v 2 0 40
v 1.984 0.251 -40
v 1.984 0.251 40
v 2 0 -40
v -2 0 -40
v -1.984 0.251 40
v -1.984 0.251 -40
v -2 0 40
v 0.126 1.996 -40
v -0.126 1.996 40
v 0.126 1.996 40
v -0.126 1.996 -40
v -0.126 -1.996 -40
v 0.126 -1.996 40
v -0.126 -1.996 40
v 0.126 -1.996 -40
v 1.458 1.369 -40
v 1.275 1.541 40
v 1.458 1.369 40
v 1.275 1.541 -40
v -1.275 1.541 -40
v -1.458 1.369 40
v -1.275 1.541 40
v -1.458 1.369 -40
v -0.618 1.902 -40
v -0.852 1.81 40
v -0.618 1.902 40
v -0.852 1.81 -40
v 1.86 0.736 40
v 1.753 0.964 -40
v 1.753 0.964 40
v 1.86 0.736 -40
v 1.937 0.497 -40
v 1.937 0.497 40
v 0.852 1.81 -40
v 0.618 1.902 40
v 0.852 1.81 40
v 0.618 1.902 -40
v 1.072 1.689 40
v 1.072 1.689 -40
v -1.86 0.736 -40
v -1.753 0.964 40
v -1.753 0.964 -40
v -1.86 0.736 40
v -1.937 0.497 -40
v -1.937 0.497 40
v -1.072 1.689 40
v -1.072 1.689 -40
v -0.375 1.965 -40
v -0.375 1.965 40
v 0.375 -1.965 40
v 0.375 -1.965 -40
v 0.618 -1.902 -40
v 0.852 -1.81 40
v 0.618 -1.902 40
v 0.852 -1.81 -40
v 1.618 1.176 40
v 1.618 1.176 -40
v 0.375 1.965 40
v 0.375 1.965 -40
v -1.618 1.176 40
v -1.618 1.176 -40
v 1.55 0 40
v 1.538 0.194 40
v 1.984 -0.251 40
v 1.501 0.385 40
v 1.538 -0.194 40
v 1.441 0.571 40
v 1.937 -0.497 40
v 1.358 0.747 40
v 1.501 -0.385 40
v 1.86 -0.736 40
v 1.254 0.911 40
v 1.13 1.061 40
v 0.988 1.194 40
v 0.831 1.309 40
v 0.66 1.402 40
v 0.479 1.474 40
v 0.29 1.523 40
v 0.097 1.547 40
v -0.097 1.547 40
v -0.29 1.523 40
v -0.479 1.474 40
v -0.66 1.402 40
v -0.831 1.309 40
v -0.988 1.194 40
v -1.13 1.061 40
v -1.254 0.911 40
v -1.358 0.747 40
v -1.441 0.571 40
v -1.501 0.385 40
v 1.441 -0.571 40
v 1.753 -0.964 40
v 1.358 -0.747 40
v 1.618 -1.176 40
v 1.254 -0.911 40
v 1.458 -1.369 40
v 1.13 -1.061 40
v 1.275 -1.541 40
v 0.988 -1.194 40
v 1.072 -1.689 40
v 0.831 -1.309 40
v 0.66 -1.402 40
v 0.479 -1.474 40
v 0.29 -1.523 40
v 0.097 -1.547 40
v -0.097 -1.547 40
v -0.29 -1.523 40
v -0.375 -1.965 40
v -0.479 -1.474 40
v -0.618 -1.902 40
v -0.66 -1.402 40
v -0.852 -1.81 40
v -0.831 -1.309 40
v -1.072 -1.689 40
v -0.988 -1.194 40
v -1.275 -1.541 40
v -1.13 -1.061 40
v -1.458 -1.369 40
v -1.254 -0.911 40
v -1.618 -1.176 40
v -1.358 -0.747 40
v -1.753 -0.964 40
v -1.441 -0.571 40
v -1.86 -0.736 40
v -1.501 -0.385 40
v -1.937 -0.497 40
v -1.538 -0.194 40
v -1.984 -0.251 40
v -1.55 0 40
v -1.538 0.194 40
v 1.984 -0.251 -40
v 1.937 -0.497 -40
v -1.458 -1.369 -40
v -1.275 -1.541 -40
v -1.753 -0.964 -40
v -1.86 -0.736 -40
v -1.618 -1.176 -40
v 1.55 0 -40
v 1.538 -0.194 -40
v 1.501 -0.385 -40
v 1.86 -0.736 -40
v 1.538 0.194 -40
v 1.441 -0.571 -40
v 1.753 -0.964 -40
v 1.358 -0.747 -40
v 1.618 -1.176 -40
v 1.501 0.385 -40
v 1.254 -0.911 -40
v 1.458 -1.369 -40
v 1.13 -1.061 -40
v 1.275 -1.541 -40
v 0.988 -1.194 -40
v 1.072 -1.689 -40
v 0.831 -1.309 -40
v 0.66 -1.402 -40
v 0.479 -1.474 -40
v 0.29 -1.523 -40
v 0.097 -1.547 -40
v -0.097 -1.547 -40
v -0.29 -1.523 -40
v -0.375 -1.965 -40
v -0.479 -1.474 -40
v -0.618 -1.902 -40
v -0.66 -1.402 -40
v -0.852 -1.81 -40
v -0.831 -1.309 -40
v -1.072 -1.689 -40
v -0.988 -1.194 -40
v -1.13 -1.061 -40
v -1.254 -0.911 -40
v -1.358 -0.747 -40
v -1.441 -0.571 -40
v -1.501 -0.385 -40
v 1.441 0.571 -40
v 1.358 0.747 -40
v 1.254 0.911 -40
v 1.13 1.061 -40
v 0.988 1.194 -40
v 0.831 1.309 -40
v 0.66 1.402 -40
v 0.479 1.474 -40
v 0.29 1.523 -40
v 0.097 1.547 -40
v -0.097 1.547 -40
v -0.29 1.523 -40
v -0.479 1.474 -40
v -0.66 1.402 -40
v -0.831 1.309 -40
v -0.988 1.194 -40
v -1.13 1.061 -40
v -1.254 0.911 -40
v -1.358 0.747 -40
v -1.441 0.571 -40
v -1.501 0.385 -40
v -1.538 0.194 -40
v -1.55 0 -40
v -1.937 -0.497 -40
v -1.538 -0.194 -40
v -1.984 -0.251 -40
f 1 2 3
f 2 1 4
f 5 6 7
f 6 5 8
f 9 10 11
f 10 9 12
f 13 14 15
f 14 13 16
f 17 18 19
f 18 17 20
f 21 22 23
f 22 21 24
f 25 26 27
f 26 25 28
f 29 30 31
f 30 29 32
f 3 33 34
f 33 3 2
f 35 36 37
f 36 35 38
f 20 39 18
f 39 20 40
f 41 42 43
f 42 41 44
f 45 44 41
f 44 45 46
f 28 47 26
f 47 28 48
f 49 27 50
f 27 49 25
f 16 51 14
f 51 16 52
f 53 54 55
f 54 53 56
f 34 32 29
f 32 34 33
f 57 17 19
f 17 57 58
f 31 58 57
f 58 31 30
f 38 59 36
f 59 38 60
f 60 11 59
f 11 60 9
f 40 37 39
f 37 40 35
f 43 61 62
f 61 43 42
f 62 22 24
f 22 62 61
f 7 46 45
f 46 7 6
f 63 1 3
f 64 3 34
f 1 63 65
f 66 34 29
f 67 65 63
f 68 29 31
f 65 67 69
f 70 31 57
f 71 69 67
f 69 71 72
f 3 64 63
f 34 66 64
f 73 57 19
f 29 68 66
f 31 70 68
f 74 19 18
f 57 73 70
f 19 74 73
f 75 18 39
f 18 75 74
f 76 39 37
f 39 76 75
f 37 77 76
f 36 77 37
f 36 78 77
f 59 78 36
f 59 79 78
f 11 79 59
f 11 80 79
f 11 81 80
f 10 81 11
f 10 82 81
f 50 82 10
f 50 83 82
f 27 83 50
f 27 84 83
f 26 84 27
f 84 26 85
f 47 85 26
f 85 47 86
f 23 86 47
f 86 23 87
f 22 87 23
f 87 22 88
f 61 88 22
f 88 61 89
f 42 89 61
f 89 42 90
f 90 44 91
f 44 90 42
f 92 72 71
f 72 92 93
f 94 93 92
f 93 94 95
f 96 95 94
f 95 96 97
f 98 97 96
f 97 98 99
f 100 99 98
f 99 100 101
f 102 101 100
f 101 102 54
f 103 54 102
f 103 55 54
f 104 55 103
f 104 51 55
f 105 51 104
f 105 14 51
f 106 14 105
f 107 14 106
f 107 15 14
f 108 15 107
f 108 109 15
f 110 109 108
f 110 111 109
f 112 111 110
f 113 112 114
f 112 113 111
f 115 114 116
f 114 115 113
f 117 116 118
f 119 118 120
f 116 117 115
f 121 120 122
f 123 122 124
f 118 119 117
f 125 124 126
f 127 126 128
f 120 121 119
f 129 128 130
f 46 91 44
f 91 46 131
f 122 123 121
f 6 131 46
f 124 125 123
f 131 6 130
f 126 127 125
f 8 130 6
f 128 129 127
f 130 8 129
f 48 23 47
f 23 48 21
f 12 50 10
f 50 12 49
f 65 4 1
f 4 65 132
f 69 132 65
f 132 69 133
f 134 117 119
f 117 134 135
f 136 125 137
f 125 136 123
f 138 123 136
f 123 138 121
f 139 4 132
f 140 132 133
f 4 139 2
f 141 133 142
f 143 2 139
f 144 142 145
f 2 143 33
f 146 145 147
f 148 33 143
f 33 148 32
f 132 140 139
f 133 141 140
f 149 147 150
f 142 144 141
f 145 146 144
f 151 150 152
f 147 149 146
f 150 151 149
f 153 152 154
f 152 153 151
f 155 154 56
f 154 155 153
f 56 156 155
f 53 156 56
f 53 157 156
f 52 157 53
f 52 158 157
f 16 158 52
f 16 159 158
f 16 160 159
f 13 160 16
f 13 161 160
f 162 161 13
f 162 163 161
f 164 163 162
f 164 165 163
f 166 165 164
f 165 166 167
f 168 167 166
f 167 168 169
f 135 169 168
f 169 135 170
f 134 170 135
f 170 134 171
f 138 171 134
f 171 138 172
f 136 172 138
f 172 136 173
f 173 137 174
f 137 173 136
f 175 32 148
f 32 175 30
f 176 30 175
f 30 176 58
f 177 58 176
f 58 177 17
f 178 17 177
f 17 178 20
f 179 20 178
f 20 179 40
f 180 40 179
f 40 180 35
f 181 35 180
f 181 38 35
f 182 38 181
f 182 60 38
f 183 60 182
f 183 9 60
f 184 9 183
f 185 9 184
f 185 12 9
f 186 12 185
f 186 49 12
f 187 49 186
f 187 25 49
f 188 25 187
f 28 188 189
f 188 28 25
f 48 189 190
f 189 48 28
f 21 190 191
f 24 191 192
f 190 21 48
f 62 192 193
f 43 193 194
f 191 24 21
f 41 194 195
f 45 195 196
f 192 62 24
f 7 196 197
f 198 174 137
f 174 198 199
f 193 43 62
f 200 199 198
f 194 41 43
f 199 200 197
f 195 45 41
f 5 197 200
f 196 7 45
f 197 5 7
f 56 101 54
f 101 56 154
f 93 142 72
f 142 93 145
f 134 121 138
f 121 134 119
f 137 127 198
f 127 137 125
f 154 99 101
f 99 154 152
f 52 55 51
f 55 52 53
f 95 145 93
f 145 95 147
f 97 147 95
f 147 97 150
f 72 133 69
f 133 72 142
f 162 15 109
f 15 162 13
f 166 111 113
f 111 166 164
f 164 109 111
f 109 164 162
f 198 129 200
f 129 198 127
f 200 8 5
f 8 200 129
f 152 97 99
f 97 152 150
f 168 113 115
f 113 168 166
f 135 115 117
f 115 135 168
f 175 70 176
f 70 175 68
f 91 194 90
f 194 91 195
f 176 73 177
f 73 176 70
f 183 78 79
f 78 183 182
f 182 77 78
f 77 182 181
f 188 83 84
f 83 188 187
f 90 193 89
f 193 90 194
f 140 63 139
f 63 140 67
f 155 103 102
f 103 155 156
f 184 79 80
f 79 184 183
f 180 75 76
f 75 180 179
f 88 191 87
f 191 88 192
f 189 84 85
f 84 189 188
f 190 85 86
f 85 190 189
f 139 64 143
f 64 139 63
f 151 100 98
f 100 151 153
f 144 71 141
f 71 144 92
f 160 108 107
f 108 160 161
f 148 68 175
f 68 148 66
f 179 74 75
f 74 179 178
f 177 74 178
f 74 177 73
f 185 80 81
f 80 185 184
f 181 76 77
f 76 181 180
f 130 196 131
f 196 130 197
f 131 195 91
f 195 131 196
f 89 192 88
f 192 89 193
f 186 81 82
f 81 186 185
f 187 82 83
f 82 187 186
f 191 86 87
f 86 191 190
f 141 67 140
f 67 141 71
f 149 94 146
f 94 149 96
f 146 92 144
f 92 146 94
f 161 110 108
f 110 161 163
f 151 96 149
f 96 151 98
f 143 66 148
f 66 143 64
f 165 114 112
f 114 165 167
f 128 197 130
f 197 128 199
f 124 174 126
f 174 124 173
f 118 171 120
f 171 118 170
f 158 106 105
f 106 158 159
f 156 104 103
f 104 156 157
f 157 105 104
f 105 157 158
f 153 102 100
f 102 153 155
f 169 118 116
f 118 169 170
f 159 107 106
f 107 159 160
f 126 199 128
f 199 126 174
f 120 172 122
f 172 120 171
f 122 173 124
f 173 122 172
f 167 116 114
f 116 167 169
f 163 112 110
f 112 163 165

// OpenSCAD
$fn = 50;


difference() {
	union() {
		translate(v = [0, 0, -40.0000000000]) {
			cylinder(h = 80, r = 2.0000000000);
		}
	}
	union() {
		translate(v = [0, 0, -100.0000000000]) {
			cylinder(h = 200, r = 1.5500000000);
		}
	}
}
